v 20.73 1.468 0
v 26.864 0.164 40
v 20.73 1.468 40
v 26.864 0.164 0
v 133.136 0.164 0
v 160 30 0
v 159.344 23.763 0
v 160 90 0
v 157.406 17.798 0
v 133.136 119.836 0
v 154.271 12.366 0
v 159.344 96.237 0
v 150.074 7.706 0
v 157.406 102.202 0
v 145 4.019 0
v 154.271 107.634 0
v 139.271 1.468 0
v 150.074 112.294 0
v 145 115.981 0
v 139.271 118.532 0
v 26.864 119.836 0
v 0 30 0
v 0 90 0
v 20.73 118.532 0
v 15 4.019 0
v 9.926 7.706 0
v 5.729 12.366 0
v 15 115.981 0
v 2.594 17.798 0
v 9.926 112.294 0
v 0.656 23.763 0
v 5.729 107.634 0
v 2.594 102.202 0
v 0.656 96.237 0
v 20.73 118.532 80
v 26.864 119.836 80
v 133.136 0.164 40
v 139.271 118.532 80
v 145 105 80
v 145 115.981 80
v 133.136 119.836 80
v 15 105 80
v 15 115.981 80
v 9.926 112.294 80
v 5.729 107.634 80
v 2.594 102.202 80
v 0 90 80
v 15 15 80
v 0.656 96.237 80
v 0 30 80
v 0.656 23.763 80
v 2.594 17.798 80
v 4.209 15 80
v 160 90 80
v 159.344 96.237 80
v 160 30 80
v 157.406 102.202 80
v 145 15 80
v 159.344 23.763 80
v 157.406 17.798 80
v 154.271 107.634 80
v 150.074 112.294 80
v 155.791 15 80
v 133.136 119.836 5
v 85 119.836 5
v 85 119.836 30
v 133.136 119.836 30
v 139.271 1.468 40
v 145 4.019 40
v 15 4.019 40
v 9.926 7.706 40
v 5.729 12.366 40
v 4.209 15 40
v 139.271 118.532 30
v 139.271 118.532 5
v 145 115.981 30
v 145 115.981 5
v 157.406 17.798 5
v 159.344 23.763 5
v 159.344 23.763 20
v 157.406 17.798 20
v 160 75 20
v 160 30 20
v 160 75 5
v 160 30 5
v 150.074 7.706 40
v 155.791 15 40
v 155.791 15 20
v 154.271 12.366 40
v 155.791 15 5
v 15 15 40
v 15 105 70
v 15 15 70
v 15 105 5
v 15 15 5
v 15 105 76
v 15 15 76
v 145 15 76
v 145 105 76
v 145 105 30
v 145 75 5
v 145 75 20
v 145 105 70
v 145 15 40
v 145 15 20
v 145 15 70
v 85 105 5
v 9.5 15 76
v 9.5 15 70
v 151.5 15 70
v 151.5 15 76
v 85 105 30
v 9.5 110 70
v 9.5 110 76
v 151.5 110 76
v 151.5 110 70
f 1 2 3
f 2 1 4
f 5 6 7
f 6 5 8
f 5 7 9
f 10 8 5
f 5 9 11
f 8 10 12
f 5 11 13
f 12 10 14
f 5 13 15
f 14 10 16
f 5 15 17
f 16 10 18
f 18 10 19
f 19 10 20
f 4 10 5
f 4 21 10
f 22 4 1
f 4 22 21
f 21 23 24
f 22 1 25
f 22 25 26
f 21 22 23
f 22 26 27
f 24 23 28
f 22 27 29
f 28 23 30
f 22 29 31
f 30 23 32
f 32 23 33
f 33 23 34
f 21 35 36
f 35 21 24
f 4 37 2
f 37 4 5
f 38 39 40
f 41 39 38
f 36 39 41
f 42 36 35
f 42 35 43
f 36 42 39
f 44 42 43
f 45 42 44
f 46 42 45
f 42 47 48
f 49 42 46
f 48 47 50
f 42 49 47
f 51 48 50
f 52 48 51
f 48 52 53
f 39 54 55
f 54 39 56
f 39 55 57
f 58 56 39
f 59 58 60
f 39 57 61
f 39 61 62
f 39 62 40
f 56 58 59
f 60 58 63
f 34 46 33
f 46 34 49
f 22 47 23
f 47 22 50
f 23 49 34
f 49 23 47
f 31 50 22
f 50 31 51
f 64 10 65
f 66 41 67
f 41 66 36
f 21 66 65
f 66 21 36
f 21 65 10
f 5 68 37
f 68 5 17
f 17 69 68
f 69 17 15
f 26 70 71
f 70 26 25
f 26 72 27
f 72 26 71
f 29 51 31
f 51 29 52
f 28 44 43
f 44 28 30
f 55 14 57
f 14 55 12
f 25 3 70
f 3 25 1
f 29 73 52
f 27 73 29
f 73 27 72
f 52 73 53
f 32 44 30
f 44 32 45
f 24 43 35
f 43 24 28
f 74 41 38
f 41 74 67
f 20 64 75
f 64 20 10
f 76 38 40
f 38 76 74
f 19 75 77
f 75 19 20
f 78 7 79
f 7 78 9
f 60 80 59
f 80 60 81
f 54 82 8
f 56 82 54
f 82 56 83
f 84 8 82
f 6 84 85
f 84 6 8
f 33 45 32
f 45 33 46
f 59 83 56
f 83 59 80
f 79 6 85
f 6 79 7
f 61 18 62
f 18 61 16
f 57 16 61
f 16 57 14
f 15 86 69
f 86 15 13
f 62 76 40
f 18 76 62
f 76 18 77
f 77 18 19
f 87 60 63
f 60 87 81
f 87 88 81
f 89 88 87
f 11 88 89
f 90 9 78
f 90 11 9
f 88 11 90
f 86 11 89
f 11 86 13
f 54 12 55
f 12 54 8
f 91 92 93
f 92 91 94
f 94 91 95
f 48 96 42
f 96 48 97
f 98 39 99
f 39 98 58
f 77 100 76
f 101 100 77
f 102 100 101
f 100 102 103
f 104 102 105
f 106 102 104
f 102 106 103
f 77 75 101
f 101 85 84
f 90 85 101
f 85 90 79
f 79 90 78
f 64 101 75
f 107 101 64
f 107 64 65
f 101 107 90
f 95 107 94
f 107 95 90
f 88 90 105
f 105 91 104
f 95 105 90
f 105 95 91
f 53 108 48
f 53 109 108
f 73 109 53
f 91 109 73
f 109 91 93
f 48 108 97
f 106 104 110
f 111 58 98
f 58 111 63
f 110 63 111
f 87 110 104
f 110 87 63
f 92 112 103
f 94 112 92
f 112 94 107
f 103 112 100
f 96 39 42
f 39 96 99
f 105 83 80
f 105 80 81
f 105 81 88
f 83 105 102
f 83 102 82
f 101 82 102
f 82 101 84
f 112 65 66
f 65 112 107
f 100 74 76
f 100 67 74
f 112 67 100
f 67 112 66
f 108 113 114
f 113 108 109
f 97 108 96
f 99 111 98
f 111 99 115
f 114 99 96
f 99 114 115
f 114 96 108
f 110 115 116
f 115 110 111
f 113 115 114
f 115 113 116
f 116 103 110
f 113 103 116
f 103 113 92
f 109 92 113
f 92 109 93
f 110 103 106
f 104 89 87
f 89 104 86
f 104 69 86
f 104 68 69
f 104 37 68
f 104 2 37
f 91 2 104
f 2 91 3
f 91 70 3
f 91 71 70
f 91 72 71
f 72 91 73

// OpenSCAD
/*
        ENAMEL PROJECT - MELANIE BALJKO
        MODELLING FOR VERSION 3
        CREATED BY: SHWETA DIXIT - 2017
        
        TITLE --- VERSION 3 - VARIANT 2 - OUTER ROUNDED BOX
        
        *******ATTEMPT TWO***********
        
        (Measurements in mm)
        
        
*/

////////////////// VARIABLES ////////////////////////////

// For outer rounded cube
x_out = 160;
y_out = 120;
z_out = 80;
r_out = 30;


// For inner cube
x_in = x_out - 30;
y_in = y_out - 30;
z_in = z_out + 5;

//// FOR RASPBERRY PI HOLES ////

//For Right side hole
x_side = 50;
y_side = 60;
z_side = 15;

// For hole at the back
x_back = 60;
y_back = 50;
z_back = 25;

// For top slider layer
x_top = x_in + 12;
y_top = y_in + (y_out - y_in)/2 + 5;
z_top = 6; // height of top slider layer

// For removing the top half to fit in the slider
x_half = x_out;
y_half = r_out/2;
z_half = z_out/2;

    
////////////////// MODULES //////////////////////////////

// Modelling outer rounded cube
module outer_cube(x_out, y_out, z_out, r_out)
hull(){
    translate([r_out, r_out, 0])
    {
        cylinder(r = r_out, h = z_out);
    }
    
    translate([x_out - r_out, r_out, 0])
    {
        cylinder(r = r_out, h = z_out);
    }
    
    translate([r_out, y_out - r_out, 0])
    {
        cylinder(r = r_out, h = z_out);
    }
    
    translate([x_out - r_out, y_out - r_out, 0])
    {
        cylinder(r = r_out, h = z_out);
    }
    
}

/*rotate([90, 0, 90]) translate([r_out, z_out - r_out, r_out])
    {
        cylinder(r = r_out, h = x_out- (2*r_out));
    }*/

//Modelling inner cube
module inner_cube(x_in, y_in, z_in)
{
    translate([((x_out - x_in)/2), ((y_out - y_in)/2), z_in - z_out])
    {
        cube([x_in, y_in, z_in]);
    }
}



// Modelling right and back 
module side_hole(x_side, y_side, z_side)
{
    translate([(x_in + (x_out - x_in)/2), ((y_out - y_in)/2), (z_in - z_out)])
    {
        cube([x_side, y_side, z_side]);
    }
}

module back_hole(x_back, y_back, z_back)
{
    translate([(((x_out - x_in)/2) + (x_in - x_back)), (((y_out - y_in)/2)+ y_in), (z_in - z_out)])
    {
        cube([x_back, y_back, z_back]);
    }
}


// Modelling the top slider
module top_slider(x_top, y_top, z_top)
{
    translate([((x_out - x_in)/4)+2, 0, z_out - 10])
    {
        cube([x_top, y_top, z_top]);
    }
}

// Removing the top half to fit the slider
module top_half(x_half, y_half, z_half)
{
    translate([0, 0, z_out - z_half])
    {
        cube([x_half, y_half, z_half]);
        /*rotate([90, 0, 90])
       {
           translate([0, y_half, 0])
           {
               cylinder(r = r_out, h = x_half);
           }
       }*/
    }
}
    

/////////////// BUILDING MODEL //////////////////

// Building the outer box+

difference()
{
    outer_cube(x_out, y_out, z_out, r_out);    
    inner_cube(x_in, y_in, z_in);  
    side_hole(x_side, y_side, z_side);
    back_hole(x_back, y_back, z_back);  
    top_slider(x_top, y_top, z_top);  
    top_half(x_half, y_half, z_half);    
}
